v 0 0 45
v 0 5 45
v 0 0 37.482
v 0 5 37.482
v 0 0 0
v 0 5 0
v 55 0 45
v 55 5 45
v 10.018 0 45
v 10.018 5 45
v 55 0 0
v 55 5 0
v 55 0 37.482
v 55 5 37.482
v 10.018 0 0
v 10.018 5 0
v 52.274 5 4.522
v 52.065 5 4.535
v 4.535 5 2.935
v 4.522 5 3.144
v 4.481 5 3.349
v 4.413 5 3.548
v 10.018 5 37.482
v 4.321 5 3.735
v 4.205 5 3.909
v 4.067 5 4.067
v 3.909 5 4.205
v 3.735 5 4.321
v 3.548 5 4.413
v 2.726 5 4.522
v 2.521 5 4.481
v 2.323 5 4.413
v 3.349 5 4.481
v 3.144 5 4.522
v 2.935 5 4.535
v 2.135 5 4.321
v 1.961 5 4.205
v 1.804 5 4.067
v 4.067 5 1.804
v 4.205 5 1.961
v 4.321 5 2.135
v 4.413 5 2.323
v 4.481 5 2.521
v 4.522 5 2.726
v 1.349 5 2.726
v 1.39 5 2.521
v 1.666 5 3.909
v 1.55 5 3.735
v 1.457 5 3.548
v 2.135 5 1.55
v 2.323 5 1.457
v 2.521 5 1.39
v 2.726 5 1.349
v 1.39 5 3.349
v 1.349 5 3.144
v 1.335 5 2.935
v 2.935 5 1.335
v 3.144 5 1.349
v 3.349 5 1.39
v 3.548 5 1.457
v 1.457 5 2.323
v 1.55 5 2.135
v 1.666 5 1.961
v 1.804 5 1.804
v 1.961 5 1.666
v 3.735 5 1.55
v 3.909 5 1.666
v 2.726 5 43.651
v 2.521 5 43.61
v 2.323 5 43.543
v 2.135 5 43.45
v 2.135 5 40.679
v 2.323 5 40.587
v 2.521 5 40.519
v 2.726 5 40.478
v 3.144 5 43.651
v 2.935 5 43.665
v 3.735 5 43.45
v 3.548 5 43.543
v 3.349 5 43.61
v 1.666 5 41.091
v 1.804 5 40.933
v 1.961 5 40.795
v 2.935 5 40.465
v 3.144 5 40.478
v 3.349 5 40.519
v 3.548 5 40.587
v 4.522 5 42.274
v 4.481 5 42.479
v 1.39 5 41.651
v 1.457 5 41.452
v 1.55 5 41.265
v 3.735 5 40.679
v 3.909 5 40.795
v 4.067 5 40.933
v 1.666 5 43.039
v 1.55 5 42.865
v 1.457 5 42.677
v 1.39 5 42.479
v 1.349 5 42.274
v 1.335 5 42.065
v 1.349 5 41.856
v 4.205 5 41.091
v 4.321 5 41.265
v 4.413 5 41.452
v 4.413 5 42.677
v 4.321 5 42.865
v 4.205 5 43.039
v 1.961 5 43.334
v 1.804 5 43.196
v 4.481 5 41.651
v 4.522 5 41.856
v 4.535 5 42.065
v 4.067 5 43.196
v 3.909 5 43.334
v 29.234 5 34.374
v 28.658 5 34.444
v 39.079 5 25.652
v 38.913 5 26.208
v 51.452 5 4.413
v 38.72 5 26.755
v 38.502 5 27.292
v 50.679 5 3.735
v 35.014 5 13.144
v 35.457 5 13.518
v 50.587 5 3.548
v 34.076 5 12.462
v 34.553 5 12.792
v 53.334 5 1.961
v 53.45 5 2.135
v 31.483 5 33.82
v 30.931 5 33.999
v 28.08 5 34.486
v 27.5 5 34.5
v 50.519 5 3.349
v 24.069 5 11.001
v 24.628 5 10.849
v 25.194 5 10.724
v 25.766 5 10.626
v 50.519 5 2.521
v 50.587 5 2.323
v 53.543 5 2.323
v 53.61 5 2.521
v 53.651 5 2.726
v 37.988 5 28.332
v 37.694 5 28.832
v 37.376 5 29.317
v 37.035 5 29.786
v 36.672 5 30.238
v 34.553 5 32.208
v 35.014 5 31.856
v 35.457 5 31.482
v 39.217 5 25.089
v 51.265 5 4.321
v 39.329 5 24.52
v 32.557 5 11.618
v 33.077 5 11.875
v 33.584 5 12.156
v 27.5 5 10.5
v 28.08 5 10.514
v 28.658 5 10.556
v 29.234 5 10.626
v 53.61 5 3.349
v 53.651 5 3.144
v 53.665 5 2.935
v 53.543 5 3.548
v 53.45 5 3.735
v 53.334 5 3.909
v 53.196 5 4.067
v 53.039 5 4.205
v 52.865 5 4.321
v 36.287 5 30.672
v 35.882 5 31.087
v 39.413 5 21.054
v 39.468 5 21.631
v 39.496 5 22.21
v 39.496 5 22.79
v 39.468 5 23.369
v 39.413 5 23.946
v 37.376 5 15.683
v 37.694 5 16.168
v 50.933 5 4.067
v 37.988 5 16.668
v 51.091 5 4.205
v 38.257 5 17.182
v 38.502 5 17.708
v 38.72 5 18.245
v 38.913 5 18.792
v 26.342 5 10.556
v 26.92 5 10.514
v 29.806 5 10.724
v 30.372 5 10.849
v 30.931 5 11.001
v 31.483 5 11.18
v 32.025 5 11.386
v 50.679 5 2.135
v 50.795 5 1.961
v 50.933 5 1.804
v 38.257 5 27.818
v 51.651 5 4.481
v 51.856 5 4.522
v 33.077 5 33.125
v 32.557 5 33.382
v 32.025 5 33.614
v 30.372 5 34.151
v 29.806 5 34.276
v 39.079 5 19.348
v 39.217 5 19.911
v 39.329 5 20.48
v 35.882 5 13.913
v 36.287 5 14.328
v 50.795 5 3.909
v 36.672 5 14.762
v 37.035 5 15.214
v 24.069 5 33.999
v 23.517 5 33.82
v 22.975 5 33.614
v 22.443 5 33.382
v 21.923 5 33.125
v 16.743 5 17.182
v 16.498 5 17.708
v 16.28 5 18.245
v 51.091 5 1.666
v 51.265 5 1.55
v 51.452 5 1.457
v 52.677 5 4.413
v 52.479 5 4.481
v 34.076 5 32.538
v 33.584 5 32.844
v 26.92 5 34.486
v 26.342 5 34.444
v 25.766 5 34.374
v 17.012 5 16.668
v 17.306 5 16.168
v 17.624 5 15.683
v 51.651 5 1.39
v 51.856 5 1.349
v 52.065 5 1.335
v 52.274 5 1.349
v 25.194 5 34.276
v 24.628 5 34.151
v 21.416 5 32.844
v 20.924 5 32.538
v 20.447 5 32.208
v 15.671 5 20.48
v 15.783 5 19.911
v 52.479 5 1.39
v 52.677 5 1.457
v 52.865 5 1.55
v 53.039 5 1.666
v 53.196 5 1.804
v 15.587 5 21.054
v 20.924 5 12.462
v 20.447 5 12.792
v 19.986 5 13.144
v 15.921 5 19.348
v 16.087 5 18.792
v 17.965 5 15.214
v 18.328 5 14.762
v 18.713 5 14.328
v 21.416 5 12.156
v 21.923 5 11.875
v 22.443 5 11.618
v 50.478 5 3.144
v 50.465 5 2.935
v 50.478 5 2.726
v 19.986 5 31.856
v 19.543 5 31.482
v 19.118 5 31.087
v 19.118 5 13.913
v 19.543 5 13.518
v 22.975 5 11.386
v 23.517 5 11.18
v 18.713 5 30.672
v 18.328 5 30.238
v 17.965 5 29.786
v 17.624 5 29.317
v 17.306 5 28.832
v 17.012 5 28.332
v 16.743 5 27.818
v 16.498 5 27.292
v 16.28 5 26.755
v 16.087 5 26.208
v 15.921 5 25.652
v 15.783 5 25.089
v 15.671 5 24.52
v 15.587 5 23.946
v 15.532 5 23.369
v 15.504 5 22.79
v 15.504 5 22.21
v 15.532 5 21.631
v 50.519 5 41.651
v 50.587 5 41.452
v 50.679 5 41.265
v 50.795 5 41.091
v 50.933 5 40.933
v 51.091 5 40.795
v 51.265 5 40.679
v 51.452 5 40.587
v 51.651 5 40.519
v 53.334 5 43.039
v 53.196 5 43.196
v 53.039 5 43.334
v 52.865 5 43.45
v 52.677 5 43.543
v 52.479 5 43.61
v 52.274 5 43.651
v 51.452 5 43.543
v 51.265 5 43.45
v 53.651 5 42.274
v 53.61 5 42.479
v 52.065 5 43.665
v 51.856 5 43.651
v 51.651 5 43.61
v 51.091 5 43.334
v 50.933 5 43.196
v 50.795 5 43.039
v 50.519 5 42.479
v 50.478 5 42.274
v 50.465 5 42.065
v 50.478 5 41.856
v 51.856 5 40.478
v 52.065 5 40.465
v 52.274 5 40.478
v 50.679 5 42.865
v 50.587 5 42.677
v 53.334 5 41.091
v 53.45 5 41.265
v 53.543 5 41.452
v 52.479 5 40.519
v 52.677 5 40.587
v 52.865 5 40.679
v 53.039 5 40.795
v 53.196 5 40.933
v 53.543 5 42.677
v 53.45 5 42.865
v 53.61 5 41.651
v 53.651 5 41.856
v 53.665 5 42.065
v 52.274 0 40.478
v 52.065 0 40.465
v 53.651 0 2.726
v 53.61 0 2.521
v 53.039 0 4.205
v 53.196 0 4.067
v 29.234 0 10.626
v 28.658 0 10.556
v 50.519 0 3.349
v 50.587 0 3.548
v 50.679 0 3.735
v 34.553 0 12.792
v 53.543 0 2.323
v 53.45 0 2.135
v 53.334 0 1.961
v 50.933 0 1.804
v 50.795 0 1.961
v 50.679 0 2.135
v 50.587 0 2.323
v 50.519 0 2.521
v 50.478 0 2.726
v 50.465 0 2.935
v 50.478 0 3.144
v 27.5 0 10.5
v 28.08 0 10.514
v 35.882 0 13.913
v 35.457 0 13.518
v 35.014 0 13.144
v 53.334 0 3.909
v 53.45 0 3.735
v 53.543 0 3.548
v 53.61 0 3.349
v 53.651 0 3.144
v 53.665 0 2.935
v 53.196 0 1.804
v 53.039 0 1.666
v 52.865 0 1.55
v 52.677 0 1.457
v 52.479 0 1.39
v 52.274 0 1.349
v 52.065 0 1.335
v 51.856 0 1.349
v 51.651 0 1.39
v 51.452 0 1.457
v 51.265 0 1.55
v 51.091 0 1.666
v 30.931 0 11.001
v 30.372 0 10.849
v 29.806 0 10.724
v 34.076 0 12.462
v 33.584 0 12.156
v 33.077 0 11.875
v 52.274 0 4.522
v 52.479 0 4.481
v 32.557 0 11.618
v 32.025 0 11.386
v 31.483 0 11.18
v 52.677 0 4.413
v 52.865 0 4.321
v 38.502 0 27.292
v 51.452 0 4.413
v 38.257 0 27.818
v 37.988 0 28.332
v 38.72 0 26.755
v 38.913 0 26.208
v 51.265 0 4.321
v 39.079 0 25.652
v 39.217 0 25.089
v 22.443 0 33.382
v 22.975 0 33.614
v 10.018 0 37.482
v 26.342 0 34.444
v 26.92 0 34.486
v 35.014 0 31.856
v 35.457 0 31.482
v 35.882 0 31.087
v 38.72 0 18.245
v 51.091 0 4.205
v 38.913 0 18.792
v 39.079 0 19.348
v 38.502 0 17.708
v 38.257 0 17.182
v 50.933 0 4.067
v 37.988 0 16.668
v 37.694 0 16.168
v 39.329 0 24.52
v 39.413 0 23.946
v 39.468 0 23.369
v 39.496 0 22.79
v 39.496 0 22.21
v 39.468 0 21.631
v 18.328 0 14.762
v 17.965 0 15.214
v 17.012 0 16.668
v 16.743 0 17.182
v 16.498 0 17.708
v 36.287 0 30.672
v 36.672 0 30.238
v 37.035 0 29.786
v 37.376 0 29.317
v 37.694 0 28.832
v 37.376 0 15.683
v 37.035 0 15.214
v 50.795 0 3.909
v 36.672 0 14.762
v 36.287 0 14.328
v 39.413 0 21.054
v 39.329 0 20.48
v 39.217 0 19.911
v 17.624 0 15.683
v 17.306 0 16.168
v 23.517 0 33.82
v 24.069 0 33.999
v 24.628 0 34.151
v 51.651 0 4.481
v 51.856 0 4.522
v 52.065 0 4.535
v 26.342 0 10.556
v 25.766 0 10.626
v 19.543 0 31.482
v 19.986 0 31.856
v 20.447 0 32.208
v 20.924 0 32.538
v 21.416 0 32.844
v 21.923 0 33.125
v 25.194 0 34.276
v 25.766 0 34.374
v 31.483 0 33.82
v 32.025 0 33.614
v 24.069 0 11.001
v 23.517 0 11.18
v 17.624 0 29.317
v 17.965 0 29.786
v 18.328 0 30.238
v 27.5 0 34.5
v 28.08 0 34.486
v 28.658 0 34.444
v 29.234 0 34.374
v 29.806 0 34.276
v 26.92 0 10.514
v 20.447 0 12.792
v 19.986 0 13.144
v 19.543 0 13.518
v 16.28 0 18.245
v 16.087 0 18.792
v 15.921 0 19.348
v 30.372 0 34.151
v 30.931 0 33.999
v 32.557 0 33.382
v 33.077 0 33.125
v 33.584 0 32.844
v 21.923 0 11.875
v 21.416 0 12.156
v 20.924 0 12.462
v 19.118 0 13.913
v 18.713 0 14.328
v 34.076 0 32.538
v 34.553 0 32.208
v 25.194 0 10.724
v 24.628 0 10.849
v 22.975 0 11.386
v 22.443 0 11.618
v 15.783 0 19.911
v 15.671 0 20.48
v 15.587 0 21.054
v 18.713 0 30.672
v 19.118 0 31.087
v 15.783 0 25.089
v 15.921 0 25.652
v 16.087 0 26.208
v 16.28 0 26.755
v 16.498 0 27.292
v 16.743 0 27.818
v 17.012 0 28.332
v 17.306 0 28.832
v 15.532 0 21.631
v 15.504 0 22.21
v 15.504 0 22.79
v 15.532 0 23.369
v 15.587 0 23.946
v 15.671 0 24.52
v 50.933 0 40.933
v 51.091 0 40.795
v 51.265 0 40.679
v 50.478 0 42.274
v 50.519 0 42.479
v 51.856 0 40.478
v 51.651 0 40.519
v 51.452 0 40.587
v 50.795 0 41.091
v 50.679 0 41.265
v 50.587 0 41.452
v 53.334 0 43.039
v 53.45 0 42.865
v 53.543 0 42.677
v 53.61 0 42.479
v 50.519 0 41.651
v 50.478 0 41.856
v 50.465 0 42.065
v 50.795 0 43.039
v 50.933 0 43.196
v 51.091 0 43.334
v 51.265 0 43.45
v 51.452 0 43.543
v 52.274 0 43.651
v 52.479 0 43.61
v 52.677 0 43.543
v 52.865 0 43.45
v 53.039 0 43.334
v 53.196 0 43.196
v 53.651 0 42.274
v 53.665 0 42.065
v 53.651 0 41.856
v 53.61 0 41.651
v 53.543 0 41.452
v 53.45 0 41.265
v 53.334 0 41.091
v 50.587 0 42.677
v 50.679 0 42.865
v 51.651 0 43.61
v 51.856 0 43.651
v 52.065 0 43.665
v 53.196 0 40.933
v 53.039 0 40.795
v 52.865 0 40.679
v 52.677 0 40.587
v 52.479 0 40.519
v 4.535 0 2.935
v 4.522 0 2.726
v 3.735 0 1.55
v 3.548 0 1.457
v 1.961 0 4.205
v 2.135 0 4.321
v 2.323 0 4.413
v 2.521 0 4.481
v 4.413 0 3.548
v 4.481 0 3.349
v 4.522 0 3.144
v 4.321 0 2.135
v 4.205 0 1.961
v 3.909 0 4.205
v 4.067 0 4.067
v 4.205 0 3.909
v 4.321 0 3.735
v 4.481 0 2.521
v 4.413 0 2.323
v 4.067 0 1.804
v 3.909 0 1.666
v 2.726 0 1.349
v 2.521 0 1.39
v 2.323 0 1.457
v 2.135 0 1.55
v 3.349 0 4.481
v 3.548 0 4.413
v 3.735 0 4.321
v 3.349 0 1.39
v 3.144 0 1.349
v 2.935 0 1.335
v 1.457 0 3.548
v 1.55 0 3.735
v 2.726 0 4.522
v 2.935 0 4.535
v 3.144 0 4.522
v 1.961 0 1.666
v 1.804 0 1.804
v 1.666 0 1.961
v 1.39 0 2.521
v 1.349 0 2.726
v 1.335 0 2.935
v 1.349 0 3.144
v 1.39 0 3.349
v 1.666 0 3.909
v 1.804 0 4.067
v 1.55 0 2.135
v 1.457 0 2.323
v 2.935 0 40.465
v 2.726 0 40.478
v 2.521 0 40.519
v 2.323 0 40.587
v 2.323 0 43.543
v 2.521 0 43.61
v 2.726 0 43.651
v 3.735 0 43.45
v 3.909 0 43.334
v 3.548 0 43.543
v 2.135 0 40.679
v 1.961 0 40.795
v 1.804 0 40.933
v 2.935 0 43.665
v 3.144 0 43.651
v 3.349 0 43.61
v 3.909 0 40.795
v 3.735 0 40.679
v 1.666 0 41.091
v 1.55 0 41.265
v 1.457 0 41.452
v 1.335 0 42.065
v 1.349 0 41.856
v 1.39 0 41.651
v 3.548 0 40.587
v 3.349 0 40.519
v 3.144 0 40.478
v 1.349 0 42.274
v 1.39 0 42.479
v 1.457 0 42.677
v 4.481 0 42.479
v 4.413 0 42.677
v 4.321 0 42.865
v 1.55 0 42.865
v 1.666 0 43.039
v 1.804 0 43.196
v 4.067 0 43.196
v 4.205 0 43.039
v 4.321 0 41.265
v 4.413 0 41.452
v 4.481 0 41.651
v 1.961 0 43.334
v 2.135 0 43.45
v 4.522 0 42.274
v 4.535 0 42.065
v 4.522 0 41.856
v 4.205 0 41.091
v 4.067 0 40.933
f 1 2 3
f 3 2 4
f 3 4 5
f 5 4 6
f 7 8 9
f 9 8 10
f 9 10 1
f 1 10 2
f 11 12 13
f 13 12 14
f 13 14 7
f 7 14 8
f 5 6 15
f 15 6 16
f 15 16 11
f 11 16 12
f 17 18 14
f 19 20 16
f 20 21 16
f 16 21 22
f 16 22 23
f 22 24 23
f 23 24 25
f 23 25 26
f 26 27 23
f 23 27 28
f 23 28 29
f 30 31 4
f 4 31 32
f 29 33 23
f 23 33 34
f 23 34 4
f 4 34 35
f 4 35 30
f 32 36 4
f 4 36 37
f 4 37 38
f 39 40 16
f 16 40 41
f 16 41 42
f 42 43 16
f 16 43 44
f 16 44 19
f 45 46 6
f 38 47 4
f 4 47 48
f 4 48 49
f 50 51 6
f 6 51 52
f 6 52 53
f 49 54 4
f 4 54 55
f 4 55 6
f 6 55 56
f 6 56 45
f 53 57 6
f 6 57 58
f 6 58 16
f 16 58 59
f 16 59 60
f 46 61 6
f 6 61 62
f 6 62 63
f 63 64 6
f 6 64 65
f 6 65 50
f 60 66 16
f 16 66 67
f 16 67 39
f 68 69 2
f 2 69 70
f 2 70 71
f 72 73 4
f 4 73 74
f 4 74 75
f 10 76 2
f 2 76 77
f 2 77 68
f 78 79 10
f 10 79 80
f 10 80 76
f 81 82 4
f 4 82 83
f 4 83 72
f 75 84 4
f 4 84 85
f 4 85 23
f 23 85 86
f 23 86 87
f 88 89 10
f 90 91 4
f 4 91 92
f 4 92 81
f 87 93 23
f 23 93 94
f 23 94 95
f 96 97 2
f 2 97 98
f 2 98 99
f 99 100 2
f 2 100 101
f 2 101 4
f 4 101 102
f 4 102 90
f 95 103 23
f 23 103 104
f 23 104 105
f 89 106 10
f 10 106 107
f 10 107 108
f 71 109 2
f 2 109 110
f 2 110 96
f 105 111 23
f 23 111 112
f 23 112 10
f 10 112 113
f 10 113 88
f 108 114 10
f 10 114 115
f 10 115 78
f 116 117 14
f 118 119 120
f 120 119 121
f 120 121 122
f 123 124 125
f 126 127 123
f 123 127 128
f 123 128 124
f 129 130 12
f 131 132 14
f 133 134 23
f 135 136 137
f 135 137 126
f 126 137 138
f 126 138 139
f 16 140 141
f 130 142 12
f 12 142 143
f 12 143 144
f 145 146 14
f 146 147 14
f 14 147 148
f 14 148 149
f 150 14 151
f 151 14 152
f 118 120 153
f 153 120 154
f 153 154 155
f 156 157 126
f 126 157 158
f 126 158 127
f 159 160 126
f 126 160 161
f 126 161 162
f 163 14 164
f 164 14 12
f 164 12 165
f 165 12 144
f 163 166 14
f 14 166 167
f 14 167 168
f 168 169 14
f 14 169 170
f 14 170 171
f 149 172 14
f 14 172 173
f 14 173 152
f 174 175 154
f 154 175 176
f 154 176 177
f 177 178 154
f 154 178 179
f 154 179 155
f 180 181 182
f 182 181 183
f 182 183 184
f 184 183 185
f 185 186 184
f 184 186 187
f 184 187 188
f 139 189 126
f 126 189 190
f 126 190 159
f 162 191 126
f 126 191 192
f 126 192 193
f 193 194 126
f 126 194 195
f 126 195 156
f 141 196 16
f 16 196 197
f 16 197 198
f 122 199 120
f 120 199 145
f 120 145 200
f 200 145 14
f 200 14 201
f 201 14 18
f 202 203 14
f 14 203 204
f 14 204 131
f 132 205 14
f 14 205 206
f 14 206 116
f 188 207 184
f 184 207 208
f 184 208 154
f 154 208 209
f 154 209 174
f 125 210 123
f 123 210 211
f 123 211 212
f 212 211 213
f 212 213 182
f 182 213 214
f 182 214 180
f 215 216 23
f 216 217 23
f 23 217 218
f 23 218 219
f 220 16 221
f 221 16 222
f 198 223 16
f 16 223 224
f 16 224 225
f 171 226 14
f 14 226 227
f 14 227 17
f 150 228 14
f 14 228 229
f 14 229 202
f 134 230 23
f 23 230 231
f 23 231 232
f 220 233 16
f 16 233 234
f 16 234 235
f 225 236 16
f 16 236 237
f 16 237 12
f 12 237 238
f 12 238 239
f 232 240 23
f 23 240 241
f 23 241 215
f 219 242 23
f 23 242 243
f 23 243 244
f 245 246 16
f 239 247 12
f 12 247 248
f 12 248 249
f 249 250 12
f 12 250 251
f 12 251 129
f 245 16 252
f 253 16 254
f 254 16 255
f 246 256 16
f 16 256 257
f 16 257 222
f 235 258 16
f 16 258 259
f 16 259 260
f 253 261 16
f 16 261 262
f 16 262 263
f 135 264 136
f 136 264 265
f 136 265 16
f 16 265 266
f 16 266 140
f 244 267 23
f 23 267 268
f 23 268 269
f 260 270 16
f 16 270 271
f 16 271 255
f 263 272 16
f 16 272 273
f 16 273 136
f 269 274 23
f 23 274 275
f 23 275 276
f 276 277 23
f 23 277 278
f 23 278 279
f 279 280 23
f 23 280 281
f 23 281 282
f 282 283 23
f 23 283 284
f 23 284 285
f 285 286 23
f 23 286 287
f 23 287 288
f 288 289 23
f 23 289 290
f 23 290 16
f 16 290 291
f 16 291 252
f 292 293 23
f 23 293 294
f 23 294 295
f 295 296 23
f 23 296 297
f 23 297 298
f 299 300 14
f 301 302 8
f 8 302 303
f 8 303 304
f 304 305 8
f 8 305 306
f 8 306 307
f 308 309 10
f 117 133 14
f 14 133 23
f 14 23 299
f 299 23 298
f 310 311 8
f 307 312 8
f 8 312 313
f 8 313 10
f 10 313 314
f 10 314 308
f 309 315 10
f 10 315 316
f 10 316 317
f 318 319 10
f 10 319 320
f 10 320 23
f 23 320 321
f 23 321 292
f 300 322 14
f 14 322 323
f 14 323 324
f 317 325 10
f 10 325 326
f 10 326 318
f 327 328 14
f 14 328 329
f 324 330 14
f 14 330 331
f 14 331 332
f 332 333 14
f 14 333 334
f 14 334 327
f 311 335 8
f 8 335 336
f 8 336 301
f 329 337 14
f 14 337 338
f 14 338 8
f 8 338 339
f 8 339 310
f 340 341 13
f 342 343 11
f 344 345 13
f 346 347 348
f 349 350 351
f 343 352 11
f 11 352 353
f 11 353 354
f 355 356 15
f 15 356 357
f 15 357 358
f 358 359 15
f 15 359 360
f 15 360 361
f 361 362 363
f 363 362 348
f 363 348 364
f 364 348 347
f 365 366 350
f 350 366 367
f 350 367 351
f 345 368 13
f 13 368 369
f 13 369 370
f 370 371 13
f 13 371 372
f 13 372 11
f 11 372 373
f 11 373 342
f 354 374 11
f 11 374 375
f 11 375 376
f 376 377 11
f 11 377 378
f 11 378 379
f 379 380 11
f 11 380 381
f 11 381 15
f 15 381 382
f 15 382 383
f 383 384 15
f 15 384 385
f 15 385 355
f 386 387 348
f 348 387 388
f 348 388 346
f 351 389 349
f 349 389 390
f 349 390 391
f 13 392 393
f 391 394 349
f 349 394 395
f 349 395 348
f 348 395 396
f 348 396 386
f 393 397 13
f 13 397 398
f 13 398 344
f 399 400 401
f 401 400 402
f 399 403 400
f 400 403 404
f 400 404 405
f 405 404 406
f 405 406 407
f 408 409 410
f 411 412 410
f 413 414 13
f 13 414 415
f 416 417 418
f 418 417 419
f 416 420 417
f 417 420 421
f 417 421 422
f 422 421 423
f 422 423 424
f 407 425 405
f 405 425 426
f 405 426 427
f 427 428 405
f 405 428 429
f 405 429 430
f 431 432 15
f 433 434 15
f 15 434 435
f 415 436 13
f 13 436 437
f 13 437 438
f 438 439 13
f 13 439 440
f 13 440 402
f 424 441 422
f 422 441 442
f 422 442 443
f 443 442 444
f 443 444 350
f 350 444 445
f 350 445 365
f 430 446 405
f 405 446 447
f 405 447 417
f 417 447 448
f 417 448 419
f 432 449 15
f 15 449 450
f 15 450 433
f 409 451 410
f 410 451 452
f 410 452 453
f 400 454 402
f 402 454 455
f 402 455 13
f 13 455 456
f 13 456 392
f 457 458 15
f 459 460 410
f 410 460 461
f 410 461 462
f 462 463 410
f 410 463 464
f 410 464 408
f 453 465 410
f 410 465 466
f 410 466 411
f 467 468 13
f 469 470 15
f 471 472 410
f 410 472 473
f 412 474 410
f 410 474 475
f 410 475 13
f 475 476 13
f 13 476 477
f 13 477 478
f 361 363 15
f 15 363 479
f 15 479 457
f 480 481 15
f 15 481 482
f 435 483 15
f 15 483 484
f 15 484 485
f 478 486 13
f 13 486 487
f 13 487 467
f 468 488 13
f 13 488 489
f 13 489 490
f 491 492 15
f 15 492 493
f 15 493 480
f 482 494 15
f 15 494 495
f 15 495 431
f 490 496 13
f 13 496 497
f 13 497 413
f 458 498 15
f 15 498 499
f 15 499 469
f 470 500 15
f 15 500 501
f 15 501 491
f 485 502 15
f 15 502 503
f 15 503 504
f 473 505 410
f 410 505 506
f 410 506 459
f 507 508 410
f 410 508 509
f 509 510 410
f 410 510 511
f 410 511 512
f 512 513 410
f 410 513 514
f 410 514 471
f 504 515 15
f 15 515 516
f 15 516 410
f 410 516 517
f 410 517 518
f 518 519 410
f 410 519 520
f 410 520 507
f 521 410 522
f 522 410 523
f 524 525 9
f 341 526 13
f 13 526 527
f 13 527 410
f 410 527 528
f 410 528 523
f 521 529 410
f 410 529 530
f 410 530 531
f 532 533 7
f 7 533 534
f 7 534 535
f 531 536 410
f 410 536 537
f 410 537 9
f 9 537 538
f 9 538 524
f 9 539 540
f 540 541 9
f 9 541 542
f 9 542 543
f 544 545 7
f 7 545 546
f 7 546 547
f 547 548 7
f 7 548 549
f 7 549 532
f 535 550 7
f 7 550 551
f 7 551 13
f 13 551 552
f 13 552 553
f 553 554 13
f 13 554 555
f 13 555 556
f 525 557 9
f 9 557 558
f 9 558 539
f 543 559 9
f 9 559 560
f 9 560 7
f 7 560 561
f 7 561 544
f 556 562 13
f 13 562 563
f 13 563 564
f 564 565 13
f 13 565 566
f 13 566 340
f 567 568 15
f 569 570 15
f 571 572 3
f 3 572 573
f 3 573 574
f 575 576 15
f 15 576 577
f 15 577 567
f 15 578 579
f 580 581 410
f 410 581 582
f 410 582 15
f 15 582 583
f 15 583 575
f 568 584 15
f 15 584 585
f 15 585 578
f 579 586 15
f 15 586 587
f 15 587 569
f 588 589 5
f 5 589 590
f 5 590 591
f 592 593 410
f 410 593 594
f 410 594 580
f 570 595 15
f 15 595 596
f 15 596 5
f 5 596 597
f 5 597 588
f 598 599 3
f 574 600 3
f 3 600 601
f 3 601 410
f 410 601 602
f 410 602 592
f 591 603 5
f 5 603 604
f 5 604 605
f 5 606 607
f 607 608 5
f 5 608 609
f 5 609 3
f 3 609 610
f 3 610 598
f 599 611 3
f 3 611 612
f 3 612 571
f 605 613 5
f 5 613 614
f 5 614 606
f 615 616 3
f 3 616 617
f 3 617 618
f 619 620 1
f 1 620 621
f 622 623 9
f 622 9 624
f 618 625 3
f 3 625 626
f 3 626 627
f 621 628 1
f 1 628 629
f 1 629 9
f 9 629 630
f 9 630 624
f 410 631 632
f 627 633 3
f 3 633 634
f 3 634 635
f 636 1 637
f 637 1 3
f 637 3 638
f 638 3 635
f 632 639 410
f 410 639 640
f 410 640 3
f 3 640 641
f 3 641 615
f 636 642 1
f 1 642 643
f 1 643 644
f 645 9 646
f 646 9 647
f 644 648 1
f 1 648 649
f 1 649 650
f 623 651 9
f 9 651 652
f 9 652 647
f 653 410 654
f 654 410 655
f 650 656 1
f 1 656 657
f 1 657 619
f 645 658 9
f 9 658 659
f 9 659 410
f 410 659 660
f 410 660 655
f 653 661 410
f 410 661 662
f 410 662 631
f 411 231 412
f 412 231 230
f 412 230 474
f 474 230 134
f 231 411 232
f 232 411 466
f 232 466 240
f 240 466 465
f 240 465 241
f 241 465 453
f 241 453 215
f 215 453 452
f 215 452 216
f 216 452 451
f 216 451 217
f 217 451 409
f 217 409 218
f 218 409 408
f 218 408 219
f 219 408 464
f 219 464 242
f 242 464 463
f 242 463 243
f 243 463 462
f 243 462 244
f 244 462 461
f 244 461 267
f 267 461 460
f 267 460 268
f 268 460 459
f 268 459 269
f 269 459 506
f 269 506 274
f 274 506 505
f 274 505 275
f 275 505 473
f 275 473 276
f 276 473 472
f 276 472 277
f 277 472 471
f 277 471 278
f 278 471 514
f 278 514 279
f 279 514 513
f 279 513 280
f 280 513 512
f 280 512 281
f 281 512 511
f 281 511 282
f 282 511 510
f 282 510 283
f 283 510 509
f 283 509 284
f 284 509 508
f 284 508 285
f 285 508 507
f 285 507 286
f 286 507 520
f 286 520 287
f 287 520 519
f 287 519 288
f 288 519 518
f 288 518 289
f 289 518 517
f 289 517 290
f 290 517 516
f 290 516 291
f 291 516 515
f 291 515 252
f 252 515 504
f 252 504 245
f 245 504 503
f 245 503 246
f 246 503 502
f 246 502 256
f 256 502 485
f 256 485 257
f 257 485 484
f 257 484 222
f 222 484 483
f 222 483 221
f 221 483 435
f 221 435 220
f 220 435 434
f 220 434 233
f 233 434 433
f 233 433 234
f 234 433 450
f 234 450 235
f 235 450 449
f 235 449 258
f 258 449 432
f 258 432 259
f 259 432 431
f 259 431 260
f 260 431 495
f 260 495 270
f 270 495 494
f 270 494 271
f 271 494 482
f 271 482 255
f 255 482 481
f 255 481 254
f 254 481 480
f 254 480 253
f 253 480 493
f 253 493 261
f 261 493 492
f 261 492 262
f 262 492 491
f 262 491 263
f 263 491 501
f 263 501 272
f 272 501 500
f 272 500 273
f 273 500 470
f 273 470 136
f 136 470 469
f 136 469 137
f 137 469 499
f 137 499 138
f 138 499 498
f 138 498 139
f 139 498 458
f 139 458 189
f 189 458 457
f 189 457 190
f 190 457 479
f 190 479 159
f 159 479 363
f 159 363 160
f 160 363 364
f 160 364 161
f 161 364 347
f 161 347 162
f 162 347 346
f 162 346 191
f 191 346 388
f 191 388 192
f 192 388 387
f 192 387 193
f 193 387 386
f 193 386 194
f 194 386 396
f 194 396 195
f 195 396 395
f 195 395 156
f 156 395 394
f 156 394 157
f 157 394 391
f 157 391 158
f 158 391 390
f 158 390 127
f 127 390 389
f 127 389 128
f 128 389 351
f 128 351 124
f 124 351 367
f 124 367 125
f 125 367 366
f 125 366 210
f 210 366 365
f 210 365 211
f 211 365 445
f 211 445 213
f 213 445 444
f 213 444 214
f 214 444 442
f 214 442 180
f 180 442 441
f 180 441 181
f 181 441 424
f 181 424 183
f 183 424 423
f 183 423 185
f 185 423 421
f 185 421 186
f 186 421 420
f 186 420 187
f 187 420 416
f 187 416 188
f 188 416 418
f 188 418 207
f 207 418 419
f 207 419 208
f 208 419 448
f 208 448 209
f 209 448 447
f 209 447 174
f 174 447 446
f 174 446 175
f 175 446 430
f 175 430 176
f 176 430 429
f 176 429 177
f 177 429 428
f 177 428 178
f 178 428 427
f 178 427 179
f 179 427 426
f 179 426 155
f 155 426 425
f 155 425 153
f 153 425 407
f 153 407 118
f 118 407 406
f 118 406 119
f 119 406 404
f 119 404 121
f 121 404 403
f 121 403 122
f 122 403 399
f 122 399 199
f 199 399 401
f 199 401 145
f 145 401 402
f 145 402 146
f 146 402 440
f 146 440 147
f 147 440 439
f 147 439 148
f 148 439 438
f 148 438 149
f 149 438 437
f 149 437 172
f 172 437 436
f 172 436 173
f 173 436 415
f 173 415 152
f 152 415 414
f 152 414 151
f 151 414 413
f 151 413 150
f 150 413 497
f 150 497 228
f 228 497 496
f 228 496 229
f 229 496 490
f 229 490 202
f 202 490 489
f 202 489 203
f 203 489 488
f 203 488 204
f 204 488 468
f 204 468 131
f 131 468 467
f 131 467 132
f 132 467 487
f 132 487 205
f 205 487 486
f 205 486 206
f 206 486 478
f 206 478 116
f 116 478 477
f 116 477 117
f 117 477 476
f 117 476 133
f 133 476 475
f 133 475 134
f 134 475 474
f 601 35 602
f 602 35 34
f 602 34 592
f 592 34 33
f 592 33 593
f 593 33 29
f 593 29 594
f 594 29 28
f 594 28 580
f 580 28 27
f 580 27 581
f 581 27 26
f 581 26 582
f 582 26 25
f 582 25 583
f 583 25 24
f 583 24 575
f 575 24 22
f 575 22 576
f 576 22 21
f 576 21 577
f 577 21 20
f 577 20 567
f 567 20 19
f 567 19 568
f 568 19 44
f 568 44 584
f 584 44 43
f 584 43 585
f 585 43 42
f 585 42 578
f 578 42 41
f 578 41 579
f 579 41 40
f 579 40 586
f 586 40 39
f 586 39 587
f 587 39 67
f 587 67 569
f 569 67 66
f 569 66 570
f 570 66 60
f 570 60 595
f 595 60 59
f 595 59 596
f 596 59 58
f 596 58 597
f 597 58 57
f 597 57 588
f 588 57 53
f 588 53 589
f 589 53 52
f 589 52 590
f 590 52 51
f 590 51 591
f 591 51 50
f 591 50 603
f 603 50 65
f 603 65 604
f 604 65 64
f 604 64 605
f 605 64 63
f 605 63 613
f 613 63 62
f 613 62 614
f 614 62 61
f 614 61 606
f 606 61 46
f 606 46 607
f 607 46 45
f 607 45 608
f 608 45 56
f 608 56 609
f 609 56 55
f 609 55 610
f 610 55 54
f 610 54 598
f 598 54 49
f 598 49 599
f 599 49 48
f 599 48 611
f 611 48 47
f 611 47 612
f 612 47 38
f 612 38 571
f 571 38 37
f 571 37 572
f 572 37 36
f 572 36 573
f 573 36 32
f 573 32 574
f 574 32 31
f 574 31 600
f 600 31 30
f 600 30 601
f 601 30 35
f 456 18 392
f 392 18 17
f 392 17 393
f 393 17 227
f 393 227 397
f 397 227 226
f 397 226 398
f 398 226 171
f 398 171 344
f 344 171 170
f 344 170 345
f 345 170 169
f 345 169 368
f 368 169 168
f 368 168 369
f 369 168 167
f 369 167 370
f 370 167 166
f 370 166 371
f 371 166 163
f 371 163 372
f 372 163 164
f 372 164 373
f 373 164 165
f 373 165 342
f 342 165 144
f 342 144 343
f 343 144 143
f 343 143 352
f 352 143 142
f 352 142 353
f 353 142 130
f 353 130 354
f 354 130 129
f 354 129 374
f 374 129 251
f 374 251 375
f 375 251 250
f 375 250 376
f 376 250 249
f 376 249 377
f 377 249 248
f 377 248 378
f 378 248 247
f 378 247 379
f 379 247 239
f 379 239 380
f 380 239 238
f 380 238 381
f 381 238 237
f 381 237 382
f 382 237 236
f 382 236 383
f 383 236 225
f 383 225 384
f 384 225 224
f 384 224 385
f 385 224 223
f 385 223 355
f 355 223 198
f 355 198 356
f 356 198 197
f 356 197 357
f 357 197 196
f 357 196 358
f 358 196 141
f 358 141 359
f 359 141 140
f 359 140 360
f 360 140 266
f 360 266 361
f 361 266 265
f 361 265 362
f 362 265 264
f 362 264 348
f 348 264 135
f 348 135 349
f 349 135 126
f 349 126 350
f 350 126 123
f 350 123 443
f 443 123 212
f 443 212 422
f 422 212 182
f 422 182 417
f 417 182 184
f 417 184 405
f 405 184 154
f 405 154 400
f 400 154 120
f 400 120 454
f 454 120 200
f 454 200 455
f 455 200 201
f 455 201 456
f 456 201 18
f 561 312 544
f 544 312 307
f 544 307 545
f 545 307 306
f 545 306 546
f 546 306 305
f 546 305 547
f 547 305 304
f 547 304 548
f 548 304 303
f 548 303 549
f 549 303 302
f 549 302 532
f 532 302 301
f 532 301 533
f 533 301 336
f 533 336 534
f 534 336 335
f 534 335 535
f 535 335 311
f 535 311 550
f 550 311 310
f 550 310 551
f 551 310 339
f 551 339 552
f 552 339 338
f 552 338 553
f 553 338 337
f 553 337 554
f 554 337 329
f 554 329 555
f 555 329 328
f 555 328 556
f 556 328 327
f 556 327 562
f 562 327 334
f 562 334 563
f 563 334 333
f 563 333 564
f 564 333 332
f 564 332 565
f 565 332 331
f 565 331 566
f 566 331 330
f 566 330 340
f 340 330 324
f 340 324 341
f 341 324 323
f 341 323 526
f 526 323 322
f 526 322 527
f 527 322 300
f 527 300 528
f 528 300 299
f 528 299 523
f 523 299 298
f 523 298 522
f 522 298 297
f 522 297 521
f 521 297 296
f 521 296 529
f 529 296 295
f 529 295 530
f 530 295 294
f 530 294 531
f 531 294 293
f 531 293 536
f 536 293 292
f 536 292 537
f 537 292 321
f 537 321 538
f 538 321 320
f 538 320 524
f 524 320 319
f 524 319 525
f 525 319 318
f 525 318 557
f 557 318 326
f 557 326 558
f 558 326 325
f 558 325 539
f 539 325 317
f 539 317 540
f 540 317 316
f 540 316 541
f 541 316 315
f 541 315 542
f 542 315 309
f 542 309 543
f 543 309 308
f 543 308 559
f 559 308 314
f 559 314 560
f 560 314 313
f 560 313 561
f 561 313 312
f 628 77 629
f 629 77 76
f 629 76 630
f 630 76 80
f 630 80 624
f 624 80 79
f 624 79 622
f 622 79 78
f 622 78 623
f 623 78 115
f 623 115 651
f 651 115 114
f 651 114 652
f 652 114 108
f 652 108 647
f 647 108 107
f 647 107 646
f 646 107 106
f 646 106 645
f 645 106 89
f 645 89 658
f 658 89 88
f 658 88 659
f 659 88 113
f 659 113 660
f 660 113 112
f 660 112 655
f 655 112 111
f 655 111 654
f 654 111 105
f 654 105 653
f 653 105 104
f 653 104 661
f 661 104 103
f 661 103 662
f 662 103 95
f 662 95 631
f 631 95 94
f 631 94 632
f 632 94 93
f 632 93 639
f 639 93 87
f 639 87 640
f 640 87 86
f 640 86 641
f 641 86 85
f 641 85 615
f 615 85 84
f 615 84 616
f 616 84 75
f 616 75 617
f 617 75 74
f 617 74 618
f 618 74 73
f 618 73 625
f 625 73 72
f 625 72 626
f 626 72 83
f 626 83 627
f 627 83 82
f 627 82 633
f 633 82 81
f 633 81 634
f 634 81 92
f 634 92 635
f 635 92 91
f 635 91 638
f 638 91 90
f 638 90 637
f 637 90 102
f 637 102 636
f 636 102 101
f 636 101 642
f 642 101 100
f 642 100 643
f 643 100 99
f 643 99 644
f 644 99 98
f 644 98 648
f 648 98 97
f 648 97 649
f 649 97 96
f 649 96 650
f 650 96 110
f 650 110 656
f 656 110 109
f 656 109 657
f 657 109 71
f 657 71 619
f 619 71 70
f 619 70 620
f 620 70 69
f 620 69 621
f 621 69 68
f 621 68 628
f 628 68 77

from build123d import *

# Parameters (mm, degrees)
SKETCH1_W           = 55
SKETCH1_H           = 45
BOSS_EXTRUDE1_DEPTH = 5
SKETCH2_R           = 12
CUT_EXTRUDE1_DEPTH  = 5
SKETCH3_R           = 1.6
CUT_EXTRUDE2_DEPTH  = 10


with BuildPart() as part:
    # Sketch1 → Boss-Extrude1 (new body)
    with BuildSketch(Plane(origin=(0, 0, 0), x_dir=(1, 0, 0), z_dir=(0, 1, 0))):
        with Locations((27.5, -22.5)):
            Rectangle(SKETCH1_W, SKETCH1_H)
    extrude(amount=BOSS_EXTRUDE1_DEPTH)

    # Sketch2 → Cut-Extrude1 (cut)
    with BuildSketch(Plane(origin=(0, 5, 0), x_dir=(1, 0, 0), z_dir=(0, 1, 0))):
        with Locations((27.5, -22.5)):
            Circle(SKETCH2_R)
    extrude(amount=-CUT_EXTRUDE1_DEPTH, mode=Mode.SUBTRACT)

    # Sketch3 → Cut-Extrude2 (cut)
    with BuildSketch(Plane(origin=(0, 5, 0), x_dir=(1, 0, 0), z_dir=(0, 1, 0))):
        with Locations((2.935211994, -2.935211994)):
            Circle(SKETCH3_R)
        with Locations((52.064788006, -2.935211994)):
            Circle(SKETCH3_R)
        with Locations((52.064788006, -42.064788006)):
            Circle(SKETCH3_R)
        with Locations((2.935211994, -42.064788006)):
            Circle(SKETCH3_R)
    extrude(amount=-CUT_EXTRUDE2_DEPTH, mode=Mode.SUBTRACT)


solid = part.part
